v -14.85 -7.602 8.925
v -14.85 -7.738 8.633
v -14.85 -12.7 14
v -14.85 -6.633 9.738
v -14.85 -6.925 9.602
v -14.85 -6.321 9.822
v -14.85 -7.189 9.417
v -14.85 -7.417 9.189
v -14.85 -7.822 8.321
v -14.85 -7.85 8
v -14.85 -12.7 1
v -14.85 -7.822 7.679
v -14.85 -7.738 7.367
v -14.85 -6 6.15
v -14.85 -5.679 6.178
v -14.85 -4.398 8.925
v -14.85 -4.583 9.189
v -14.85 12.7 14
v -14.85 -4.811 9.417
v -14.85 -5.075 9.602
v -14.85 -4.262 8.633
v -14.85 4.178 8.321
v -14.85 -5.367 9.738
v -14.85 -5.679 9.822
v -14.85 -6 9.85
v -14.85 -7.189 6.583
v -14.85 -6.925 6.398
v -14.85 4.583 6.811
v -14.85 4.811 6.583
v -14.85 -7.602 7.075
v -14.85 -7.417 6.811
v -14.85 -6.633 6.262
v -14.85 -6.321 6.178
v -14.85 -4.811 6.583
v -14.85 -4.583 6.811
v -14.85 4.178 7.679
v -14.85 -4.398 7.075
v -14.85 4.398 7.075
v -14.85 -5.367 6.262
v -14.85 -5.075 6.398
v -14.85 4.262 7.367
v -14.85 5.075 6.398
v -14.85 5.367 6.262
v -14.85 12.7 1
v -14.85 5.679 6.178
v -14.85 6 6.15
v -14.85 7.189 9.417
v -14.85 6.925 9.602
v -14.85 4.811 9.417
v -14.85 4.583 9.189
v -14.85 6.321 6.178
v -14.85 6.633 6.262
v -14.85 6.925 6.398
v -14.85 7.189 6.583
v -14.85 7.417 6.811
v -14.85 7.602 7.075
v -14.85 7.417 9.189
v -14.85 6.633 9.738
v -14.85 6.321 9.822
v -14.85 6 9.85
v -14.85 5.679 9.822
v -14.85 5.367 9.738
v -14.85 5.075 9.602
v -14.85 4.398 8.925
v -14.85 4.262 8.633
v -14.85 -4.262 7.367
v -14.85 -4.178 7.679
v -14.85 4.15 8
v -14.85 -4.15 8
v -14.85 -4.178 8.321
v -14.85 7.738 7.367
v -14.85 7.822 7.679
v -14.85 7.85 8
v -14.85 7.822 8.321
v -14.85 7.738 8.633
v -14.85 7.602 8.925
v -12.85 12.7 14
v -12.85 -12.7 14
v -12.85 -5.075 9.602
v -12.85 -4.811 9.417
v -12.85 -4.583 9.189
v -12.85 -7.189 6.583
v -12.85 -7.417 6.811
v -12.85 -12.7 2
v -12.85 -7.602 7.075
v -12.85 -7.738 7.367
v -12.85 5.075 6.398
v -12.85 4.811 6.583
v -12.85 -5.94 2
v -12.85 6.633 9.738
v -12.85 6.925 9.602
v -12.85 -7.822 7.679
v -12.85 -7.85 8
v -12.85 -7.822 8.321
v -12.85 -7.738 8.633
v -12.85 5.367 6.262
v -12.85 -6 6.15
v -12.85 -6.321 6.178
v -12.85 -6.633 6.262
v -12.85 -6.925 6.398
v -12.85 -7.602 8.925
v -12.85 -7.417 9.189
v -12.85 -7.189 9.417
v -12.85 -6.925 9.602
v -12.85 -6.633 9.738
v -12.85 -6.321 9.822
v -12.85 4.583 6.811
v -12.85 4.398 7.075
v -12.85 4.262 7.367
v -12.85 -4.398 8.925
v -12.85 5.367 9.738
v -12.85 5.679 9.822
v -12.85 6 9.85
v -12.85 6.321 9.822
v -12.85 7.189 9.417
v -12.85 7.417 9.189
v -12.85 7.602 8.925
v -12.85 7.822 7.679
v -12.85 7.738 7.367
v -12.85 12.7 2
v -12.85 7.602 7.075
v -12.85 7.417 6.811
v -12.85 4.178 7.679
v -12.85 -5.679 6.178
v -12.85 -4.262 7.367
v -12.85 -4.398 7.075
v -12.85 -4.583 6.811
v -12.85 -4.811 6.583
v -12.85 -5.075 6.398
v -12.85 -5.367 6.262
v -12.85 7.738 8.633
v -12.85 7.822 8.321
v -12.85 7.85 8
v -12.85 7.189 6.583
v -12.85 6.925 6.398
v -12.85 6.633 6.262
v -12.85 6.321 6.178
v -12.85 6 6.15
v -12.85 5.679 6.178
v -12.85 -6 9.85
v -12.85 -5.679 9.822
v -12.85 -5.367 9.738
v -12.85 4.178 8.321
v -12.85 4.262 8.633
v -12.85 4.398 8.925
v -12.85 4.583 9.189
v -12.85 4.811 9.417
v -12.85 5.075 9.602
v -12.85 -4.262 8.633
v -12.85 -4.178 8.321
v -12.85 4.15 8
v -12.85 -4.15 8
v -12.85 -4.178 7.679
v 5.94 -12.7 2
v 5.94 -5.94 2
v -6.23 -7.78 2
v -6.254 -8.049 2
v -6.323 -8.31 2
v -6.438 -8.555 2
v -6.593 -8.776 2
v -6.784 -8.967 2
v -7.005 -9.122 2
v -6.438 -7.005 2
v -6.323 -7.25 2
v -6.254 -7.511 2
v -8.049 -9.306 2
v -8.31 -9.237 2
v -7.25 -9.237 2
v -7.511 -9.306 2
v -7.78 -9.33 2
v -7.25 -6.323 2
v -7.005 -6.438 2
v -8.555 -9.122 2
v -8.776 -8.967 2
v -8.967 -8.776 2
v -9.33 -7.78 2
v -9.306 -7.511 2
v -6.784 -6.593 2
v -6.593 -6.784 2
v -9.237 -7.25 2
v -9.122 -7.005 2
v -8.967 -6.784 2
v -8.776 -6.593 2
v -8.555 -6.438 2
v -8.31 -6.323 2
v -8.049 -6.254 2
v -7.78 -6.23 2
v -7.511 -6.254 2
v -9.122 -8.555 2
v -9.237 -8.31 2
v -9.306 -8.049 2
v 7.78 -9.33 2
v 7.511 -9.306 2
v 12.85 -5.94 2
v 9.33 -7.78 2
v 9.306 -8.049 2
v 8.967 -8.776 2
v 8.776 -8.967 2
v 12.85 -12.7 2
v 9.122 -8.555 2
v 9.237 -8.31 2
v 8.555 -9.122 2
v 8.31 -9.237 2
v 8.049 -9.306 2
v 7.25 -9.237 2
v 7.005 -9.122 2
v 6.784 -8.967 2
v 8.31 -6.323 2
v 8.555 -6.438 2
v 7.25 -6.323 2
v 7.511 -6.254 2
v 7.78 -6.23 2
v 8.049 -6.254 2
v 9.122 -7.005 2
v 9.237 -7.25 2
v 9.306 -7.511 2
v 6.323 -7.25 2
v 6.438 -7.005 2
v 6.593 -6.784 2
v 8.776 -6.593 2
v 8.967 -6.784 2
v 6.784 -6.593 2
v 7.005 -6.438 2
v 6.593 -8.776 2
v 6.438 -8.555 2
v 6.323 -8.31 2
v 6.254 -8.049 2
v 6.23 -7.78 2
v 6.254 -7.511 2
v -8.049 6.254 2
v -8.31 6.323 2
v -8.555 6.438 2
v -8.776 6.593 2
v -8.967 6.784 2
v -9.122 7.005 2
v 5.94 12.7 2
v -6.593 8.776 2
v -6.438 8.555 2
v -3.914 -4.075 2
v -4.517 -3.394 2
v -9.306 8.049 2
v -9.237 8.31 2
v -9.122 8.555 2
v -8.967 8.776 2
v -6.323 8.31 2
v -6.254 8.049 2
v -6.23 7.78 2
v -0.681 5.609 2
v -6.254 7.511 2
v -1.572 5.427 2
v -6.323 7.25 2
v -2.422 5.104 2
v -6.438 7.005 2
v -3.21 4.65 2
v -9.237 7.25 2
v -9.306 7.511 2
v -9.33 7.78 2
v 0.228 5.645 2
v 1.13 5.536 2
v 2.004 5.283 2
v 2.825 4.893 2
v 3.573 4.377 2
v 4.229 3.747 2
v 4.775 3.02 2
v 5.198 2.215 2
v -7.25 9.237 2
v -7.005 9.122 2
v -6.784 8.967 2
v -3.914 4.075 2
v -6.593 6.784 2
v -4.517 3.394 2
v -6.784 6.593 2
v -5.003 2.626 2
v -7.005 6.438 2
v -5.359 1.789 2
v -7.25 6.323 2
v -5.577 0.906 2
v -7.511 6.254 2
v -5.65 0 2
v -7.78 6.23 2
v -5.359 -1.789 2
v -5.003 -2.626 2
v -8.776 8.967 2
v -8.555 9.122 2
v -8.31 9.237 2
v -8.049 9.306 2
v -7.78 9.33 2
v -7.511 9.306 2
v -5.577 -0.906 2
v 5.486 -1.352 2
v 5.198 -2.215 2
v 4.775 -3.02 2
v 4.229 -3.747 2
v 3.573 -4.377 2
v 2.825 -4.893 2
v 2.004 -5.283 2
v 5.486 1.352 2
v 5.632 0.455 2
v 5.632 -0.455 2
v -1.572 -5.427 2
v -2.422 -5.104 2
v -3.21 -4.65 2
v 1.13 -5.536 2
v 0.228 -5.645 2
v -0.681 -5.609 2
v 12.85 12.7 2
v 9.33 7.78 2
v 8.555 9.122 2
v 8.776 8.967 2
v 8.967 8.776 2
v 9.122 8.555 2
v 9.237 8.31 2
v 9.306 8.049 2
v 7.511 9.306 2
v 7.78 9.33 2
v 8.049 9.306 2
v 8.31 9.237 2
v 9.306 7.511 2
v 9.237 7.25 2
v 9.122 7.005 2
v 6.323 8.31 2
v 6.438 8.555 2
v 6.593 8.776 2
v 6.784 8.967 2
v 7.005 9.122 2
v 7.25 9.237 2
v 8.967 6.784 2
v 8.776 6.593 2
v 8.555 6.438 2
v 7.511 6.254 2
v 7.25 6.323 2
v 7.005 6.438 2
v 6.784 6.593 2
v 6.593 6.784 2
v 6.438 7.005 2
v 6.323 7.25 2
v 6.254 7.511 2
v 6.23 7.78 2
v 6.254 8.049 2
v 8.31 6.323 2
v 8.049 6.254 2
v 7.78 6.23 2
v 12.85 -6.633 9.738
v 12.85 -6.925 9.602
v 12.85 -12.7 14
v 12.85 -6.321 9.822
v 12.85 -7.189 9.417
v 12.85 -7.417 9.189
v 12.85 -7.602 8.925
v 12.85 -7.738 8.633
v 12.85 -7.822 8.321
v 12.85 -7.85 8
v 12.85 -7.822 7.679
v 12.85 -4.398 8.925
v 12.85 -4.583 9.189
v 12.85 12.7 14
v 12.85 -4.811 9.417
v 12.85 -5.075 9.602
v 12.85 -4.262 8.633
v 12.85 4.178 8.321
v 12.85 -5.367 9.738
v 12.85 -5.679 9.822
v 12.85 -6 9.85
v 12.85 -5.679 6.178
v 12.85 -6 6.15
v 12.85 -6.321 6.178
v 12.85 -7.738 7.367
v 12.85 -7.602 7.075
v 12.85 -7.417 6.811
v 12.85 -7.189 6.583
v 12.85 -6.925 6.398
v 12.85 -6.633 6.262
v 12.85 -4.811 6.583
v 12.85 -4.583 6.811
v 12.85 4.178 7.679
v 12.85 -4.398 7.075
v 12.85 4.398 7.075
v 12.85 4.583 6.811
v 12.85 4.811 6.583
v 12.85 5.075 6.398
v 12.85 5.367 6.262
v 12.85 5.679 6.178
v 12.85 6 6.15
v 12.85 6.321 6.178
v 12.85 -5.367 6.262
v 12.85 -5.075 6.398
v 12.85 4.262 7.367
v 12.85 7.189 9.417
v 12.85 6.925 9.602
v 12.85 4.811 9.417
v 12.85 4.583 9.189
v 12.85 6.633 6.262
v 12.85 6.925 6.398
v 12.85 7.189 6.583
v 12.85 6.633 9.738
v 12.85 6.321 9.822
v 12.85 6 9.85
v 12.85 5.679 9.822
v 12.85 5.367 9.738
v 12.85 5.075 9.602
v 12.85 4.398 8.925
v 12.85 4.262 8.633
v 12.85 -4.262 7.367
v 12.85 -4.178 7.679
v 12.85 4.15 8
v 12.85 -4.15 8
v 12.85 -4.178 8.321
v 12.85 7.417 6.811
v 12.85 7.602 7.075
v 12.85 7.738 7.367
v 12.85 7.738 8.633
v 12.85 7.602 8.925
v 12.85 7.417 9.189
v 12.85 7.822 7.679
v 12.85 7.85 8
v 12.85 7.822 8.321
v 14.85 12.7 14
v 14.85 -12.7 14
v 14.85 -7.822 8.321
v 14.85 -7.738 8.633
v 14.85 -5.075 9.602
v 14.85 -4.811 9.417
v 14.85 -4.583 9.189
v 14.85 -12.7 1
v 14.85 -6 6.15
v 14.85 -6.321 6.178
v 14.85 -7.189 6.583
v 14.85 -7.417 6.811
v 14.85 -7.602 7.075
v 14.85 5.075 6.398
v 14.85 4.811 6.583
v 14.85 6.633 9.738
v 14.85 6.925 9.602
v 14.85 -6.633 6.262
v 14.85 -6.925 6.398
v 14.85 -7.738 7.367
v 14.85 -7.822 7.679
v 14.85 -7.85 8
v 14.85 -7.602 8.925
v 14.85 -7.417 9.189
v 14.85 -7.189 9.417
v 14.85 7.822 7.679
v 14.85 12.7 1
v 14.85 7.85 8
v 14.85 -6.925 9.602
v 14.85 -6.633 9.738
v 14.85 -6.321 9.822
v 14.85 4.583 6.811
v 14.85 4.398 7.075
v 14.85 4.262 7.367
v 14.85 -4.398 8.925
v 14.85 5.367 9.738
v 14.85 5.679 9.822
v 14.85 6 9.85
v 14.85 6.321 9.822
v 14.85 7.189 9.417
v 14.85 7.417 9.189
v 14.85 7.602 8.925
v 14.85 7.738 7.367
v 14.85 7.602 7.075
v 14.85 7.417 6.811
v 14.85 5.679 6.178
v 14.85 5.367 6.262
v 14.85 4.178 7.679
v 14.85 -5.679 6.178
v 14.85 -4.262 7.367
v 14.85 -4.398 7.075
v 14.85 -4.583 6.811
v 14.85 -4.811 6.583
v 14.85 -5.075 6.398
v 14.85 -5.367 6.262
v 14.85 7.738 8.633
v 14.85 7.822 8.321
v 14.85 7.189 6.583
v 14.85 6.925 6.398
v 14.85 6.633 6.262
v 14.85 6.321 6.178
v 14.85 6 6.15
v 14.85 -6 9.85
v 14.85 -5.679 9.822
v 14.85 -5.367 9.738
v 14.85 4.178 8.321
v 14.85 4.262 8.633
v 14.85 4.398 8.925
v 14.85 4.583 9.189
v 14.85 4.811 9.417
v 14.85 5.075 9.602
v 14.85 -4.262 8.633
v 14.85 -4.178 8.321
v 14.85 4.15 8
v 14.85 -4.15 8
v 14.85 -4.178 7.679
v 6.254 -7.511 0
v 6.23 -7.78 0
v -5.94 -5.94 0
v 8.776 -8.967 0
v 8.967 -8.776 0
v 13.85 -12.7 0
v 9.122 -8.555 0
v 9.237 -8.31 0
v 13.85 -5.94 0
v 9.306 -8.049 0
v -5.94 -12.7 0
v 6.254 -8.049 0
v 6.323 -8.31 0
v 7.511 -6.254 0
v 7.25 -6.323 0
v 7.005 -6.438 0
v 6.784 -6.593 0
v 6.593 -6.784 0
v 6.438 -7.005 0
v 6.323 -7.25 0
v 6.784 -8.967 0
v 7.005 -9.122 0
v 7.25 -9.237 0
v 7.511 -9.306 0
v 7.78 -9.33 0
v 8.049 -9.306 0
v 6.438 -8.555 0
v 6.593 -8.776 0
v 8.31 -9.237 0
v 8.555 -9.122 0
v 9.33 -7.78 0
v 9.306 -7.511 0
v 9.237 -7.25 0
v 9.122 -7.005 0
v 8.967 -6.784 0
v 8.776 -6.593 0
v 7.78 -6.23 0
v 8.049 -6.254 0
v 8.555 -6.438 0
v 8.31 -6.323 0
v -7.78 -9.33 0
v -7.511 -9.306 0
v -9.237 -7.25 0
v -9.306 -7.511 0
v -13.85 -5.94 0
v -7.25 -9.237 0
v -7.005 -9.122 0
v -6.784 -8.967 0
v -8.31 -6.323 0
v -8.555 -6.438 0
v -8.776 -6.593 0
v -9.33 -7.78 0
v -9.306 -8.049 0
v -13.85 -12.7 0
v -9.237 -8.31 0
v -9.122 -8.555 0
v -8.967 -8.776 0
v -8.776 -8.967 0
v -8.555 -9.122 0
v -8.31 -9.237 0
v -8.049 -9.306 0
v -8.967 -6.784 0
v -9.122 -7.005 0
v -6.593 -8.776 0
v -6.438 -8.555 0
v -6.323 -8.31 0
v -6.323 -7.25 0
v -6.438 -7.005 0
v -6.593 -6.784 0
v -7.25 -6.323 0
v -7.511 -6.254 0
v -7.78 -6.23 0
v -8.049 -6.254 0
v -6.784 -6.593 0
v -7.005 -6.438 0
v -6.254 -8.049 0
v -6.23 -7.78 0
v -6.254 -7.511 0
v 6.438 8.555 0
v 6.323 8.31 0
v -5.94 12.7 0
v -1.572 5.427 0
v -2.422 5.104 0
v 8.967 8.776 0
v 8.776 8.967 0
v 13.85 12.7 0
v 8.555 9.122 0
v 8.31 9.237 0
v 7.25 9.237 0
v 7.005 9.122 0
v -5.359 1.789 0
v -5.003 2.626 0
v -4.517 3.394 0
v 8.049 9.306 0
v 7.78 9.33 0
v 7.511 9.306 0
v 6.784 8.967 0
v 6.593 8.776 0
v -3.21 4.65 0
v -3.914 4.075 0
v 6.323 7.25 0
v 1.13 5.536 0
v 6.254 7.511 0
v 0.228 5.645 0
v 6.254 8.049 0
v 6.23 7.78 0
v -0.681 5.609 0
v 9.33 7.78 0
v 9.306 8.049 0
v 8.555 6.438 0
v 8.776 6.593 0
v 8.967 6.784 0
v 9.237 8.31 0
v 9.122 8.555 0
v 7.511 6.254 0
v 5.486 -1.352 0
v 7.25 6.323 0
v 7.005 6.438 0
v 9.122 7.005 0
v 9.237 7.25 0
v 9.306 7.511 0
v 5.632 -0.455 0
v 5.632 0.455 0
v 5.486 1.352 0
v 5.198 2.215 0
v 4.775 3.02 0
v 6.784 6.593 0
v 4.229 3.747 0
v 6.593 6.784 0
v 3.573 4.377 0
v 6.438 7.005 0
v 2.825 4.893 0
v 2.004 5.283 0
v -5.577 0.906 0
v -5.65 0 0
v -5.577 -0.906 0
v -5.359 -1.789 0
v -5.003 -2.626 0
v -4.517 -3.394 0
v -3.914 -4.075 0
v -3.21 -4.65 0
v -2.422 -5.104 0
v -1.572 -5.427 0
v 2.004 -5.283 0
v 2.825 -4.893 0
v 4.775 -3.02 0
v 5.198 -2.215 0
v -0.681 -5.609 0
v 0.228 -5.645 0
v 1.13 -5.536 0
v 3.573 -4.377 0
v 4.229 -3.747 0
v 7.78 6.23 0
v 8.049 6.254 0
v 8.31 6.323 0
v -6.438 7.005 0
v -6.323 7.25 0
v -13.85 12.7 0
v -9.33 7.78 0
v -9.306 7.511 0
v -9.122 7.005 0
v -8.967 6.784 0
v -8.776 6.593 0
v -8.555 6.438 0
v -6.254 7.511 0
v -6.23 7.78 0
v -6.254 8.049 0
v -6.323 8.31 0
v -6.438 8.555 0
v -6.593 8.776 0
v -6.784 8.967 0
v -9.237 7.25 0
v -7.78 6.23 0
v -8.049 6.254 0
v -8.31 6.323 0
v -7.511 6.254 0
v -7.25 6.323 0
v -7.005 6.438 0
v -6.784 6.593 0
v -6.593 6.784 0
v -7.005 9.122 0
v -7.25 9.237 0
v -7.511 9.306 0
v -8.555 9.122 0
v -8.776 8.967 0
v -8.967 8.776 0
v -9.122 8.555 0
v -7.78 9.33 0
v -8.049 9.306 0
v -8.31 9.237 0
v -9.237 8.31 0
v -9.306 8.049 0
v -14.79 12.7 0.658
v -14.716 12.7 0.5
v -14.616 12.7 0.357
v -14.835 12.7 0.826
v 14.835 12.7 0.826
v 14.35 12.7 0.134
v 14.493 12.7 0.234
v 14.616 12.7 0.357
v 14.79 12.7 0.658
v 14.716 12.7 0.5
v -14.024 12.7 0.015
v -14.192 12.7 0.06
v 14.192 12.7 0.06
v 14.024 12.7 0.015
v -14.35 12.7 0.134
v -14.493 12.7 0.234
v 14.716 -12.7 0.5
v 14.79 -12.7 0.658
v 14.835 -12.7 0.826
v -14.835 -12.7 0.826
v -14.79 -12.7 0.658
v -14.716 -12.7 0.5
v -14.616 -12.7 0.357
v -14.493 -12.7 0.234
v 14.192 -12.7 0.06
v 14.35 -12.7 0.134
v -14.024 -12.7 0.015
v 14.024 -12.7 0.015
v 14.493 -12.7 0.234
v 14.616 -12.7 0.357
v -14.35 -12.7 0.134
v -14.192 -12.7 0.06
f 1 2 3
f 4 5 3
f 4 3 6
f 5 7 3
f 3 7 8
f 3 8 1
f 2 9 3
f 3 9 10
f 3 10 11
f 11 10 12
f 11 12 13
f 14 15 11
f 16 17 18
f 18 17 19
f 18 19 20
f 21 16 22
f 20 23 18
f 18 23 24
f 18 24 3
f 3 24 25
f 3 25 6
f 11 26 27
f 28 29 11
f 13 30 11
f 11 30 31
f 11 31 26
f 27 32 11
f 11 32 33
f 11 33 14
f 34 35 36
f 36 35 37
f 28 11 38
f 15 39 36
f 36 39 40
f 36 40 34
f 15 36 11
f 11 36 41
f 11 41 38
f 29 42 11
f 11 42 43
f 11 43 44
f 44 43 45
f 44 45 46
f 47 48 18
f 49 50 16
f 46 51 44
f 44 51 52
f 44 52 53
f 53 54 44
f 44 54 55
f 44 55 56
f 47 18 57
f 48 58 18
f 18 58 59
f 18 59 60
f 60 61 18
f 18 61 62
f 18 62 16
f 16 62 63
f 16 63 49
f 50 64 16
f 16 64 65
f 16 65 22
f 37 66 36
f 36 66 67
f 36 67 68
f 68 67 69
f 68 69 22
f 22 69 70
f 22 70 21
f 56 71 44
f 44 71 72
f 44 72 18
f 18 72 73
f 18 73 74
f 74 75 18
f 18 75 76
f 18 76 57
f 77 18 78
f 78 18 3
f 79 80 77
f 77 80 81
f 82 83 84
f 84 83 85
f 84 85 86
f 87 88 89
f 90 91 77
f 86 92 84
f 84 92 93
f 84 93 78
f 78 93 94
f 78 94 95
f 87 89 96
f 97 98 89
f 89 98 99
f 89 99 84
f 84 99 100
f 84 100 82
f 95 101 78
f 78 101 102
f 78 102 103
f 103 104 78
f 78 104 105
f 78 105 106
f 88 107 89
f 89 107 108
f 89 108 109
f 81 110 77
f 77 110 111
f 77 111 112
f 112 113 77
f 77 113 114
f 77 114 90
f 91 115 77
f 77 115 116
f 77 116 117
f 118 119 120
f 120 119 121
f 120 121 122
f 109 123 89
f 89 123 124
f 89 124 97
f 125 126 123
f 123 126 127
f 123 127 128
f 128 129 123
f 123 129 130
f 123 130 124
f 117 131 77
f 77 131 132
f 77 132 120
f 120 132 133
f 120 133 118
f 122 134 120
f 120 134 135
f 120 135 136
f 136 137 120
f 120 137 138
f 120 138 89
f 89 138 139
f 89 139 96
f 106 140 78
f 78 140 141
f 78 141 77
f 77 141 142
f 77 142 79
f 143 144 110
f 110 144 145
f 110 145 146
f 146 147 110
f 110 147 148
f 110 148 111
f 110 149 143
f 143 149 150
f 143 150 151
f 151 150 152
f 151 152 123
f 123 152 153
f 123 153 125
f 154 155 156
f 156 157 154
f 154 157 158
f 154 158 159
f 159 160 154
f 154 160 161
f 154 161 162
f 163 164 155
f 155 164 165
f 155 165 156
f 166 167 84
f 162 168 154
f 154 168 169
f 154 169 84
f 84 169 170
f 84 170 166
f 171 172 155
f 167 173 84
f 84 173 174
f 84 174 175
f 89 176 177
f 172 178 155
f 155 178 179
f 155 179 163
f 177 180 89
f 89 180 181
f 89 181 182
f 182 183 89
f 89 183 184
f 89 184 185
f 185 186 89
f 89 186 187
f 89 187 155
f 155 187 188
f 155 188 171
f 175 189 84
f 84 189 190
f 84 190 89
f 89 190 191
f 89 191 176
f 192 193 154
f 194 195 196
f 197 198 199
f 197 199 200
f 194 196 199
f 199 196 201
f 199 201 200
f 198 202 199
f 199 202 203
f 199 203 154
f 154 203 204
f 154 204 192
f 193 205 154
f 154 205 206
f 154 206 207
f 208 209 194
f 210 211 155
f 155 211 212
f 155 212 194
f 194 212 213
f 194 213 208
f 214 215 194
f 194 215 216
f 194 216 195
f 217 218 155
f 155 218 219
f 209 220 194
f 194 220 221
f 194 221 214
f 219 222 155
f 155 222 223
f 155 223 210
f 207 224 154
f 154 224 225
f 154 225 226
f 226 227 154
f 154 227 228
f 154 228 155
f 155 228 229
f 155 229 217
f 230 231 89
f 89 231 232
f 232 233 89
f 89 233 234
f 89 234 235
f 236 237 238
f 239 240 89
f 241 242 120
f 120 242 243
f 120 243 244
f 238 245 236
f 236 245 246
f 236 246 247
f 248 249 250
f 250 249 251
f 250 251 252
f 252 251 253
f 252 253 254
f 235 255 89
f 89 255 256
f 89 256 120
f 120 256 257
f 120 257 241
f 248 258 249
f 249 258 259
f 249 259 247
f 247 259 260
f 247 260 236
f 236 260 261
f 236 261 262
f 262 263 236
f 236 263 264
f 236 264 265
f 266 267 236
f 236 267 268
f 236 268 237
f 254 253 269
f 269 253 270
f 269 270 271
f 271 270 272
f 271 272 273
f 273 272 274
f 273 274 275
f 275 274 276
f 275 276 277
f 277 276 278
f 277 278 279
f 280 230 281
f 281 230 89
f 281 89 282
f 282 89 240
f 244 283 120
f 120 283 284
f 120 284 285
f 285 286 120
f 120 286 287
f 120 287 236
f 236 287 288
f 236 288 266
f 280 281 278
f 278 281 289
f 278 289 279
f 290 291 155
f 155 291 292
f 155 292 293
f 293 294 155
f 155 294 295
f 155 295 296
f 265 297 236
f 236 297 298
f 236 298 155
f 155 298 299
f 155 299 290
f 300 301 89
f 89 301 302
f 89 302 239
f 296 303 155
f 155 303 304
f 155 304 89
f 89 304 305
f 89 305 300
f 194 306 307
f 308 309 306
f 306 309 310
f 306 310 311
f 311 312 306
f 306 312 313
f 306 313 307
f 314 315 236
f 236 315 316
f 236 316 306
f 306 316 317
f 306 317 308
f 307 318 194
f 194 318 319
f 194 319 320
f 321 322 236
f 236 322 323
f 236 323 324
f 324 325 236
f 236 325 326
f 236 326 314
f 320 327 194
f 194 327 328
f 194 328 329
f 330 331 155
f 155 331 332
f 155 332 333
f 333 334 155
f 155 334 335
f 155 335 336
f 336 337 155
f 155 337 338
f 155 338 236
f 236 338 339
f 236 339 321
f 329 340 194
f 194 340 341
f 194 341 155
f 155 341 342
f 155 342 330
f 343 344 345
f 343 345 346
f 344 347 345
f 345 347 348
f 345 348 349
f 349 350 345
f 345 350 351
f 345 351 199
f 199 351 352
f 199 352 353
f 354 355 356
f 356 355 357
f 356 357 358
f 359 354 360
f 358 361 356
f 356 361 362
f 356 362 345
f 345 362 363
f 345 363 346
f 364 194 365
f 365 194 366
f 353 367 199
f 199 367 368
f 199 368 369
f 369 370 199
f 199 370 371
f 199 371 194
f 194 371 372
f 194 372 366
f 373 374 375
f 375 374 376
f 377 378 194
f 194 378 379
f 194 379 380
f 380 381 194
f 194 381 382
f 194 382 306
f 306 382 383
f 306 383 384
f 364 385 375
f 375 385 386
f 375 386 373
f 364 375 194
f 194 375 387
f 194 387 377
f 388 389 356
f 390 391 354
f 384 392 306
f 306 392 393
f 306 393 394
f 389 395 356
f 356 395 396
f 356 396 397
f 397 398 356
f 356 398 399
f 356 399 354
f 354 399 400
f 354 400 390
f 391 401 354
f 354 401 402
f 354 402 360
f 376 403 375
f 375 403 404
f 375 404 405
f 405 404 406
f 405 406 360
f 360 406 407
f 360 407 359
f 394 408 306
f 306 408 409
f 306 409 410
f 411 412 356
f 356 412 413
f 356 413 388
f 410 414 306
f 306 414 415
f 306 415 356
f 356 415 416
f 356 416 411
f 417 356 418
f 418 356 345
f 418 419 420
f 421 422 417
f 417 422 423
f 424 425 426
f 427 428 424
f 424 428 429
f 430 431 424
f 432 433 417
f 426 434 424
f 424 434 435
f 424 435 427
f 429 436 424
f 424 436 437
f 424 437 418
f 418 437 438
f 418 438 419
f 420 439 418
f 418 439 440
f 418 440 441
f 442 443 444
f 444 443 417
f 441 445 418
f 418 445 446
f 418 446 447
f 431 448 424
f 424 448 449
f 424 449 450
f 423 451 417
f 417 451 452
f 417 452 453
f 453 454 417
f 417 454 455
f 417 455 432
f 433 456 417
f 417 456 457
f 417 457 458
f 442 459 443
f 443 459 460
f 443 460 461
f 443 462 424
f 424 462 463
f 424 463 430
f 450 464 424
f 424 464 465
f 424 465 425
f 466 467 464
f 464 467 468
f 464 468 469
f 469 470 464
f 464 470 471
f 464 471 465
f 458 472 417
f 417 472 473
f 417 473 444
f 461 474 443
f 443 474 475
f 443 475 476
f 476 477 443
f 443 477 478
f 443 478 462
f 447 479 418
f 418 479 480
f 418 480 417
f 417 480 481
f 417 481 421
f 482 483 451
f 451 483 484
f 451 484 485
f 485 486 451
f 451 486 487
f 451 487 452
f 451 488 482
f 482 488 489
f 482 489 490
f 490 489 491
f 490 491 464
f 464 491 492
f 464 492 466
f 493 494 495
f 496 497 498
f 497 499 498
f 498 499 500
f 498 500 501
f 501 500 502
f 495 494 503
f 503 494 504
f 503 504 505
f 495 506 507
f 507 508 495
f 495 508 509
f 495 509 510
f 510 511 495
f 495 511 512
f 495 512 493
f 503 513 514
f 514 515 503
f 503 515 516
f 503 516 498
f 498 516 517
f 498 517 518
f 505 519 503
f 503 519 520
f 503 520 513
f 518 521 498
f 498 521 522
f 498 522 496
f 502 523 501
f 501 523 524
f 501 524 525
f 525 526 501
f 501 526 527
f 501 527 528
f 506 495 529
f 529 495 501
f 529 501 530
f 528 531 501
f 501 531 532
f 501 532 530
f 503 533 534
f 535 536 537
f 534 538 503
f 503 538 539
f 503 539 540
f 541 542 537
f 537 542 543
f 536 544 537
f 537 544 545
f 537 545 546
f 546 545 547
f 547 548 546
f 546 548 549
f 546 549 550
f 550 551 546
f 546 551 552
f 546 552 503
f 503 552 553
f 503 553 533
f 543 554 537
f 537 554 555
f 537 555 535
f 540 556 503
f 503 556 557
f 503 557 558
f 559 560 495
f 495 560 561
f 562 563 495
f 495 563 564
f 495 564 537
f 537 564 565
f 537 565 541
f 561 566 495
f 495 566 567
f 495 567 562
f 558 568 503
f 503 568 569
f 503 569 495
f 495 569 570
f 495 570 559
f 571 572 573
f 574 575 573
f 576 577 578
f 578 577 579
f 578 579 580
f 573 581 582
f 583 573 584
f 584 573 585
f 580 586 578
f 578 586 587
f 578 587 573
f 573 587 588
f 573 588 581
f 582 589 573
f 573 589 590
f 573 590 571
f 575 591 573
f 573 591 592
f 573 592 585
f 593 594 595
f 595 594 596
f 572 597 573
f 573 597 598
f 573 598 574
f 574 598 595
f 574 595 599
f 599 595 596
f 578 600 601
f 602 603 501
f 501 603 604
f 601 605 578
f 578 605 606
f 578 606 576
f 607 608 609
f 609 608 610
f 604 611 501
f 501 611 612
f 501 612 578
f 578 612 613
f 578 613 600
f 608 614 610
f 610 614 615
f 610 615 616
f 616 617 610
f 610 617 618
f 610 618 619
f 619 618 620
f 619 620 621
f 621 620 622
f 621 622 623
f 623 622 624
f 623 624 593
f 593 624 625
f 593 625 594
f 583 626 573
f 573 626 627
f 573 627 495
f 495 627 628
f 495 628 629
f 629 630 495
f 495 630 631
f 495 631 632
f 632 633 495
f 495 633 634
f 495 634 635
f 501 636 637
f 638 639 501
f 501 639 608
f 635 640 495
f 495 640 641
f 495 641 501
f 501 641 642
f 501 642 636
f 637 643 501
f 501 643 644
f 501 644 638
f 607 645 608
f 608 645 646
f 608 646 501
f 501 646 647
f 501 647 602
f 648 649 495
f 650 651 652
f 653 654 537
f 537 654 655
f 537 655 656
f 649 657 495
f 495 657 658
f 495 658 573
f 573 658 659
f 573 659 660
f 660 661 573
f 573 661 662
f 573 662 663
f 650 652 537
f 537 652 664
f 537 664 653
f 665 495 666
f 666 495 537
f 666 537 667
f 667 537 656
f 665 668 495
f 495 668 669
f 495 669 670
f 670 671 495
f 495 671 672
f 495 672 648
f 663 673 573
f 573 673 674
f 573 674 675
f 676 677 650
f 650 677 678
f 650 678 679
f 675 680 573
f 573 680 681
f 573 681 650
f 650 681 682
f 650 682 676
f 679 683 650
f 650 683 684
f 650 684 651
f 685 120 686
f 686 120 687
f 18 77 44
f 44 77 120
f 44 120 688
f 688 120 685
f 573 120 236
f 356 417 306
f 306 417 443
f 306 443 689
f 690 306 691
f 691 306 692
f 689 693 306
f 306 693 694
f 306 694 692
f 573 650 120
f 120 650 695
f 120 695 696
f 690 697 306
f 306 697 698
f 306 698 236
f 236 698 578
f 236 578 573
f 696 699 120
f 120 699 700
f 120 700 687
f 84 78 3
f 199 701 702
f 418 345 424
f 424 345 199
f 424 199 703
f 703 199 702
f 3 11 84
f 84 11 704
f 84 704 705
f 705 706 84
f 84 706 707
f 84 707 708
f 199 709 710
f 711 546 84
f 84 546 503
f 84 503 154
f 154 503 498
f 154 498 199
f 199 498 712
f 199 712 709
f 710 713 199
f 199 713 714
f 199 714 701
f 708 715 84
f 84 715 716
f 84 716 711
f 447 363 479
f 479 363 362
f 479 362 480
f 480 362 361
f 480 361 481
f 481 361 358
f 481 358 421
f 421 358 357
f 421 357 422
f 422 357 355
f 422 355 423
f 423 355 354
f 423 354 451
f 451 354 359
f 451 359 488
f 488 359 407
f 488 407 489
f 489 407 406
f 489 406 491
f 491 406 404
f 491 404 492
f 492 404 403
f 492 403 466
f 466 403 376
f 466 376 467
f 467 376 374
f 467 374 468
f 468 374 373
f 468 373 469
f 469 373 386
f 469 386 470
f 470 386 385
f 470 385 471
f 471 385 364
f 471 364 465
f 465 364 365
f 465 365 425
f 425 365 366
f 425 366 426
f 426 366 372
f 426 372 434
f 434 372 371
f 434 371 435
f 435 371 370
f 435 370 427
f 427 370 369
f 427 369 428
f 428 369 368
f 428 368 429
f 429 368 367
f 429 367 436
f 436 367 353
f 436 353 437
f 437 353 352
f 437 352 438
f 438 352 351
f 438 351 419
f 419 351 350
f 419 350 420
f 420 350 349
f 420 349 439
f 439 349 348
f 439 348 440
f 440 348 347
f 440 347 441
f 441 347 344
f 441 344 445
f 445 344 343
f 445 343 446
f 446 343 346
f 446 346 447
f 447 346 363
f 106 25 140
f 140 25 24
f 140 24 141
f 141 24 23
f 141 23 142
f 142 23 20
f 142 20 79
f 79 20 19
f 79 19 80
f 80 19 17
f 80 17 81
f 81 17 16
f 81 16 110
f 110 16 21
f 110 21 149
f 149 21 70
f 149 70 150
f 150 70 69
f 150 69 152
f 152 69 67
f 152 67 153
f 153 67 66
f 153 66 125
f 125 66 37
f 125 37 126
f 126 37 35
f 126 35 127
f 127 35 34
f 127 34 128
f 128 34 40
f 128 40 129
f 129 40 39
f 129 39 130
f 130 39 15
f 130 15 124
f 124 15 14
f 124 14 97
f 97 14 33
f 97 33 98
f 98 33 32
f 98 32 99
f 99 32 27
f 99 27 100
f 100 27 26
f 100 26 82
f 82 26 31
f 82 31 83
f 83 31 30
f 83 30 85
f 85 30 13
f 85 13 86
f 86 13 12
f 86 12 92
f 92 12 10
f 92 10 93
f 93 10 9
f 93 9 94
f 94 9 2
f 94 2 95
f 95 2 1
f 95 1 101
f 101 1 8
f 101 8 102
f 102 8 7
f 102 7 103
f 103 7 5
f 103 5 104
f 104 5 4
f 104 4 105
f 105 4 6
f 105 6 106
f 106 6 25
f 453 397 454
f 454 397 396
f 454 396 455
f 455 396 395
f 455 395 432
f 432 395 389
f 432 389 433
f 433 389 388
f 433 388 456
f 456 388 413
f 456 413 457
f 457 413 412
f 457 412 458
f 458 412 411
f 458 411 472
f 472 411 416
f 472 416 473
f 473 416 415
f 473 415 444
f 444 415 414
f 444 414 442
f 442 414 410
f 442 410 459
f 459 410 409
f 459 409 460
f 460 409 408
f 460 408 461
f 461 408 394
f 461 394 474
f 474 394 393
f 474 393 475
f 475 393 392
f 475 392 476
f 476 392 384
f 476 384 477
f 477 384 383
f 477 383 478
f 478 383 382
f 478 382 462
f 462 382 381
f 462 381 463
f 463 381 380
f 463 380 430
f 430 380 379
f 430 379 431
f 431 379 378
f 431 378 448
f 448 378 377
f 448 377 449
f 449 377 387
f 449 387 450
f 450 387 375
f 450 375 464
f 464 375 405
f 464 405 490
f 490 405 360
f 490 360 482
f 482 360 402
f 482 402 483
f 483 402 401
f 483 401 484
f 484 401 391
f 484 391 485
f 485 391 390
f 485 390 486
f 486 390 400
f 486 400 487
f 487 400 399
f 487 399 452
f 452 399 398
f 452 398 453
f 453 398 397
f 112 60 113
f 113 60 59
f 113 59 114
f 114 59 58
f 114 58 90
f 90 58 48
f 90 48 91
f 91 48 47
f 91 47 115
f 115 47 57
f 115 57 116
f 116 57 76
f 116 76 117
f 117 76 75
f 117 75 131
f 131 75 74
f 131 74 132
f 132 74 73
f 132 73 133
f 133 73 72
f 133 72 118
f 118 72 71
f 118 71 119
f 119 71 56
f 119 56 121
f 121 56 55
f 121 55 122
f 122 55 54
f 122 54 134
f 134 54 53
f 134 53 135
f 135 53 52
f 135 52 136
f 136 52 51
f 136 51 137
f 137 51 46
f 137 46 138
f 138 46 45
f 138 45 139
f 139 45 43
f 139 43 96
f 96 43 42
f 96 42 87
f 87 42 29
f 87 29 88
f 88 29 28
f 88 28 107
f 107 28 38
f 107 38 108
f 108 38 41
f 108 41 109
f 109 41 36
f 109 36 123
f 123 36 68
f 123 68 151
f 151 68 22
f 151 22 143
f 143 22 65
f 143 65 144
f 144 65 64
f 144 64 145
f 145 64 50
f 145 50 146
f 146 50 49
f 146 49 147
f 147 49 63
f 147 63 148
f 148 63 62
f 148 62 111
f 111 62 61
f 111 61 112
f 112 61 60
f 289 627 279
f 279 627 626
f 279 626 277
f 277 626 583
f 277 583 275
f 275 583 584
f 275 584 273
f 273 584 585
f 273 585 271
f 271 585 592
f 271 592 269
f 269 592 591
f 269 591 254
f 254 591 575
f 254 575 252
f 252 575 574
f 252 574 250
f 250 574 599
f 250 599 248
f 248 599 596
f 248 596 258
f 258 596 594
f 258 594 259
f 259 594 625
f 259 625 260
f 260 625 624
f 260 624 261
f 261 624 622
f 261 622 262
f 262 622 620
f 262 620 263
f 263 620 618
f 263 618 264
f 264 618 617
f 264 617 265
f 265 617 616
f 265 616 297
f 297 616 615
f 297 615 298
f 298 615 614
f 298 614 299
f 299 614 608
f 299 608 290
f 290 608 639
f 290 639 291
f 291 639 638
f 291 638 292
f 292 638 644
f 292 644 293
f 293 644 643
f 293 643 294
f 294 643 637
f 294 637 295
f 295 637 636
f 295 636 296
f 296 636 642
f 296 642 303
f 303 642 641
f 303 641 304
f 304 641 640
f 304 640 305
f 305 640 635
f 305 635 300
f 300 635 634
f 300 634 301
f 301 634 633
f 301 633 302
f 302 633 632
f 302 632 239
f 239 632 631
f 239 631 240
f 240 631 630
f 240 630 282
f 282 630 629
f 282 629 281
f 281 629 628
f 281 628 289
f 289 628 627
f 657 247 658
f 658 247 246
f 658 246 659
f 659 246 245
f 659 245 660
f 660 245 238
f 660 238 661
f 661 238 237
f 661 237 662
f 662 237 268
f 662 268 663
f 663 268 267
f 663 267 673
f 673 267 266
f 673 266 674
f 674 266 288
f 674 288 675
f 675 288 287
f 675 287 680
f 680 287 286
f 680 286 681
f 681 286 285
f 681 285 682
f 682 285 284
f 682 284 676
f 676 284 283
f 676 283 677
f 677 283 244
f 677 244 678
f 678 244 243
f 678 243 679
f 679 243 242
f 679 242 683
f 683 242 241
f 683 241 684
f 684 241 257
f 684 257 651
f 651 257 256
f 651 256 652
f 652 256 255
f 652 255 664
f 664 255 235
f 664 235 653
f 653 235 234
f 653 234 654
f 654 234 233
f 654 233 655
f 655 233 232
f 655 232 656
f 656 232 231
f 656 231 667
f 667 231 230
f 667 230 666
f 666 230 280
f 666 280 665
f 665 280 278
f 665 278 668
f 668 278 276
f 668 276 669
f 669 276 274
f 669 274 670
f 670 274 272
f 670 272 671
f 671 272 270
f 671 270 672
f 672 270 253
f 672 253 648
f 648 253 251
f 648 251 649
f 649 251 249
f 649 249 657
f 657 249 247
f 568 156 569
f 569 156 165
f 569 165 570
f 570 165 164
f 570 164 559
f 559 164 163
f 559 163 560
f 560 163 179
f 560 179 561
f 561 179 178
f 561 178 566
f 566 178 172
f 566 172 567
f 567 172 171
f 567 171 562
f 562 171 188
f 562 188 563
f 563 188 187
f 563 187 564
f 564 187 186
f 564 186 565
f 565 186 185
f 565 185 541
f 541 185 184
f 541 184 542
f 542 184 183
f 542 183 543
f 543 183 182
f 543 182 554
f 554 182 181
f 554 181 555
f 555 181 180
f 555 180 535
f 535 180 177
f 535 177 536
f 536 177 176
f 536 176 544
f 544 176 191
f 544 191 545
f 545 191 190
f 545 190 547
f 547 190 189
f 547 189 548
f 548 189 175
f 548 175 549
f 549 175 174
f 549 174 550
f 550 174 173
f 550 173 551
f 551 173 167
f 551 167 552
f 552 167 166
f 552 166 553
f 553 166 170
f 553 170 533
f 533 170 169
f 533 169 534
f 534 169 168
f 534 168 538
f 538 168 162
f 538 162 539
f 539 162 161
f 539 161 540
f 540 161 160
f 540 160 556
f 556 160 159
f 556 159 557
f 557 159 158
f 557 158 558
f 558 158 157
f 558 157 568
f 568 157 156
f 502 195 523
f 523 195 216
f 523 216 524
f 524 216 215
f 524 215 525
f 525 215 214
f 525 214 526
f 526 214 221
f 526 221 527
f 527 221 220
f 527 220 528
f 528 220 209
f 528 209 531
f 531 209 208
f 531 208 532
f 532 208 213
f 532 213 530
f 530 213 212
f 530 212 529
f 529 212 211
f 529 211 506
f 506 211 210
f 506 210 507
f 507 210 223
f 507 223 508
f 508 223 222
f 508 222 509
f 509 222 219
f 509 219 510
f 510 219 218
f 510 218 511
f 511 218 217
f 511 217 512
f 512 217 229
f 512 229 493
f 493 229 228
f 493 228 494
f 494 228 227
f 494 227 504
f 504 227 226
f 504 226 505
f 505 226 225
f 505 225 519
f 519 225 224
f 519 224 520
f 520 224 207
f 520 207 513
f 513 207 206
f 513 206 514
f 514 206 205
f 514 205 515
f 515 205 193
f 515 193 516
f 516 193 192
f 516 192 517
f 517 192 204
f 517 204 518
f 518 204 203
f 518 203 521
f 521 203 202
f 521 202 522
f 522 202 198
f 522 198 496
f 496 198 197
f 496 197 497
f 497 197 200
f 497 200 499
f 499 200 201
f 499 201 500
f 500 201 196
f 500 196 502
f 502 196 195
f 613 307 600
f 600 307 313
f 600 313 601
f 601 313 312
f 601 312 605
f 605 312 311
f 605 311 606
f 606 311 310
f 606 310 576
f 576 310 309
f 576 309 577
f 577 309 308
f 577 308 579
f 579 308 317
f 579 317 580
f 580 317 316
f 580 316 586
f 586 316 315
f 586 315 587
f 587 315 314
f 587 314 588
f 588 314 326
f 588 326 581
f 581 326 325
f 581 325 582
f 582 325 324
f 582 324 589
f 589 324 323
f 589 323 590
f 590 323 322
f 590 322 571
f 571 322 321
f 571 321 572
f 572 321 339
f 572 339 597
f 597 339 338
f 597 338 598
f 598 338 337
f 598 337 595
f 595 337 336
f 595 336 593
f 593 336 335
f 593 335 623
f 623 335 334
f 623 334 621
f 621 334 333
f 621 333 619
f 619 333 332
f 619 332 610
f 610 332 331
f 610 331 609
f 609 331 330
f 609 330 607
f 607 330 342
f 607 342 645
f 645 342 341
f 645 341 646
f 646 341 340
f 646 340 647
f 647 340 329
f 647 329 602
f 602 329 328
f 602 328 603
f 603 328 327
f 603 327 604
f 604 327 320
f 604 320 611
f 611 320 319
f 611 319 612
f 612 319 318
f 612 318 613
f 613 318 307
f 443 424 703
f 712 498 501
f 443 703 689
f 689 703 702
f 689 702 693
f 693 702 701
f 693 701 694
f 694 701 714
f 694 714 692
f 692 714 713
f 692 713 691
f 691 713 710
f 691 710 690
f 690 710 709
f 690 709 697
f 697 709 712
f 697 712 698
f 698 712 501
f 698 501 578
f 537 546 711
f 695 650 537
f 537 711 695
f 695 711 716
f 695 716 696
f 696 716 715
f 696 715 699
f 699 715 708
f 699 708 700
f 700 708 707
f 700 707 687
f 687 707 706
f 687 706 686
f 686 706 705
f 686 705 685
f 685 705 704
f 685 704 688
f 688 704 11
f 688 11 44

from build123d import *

# Parameters (mm, degrees)
BOSS_EXTRUDE1_DEPTH = 12.7
SKETCH2_R           = 1.85
CUT_EXTRUDE1_DEPTH  = 30.7
SKETCH3_R           = 5.65
CUT_EXTRUDE2_DEPTH  = 15
SKETCH4_R           = 1.55
CUT_EXTRUDE3_DEPTH  = 3
FILLET1_R           = 1


with BuildPart() as part:
    # Sketch1 → Boss-Extrude1 (new body, symmetric)
    with BuildSketch(Plane(origin=(0, 0, 0), x_dir=(1, 0, 0), z_dir=(0, 1, 0))):
        Polygon((-14.85, 0), (14.85, 0), (14.85, -14), (12.85, -14), (12.85, -2), (-12.85, -2), (-12.85, -14), (-14.85, -14), align=None)
    extrude(amount=BOSS_EXTRUDE1_DEPTH, both=True)

    # Sketch2 → Cut-Extrude1 (cut, through all)
    with BuildSketch(Plane.ZY.offset(14.85)):
        with Locations((8, -6)):
            Circle(SKETCH2_R)
        with Locations((8, 6)):
            Circle(SKETCH2_R)
    extrude(amount=-CUT_EXTRUDE1_DEPTH, mode=Mode.SUBTRACT)

    # Sketch3 → Cut-Extrude2 (cut, through all)
    with BuildSketch(Plane(origin=(0, 0, 0), x_dir=(-1, 0, 0), z_dir=(0, 0, -1))):
        Circle(SKETCH3_R)
    extrude(amount=-CUT_EXTRUDE2_DEPTH, mode=Mode.SUBTRACT)

    # Sketch4 → Cut-Extrude3 (cut, through all)
    with BuildSketch(Plane.XY.offset(2)):
        with Locations((-7.78, 7.78)):
            Circle(SKETCH4_R)
        with Locations((-7.78, -7.78)):
            Circle(SKETCH4_R)
        with Locations((7.78, -7.78)):
            Circle(SKETCH4_R)
        with Locations((7.78, 7.78)):
            Circle(SKETCH4_R)
    extrude(amount=-CUT_EXTRUDE3_DEPTH, mode=Mode.SUBTRACT)

    # Fillet1
    fillet1_edges = [part.edges().sort_by_distance(p)[0] for p in [
        (-14.85, 0, 0),
        (14.85, 0, 0),
    ]]
    fillet(fillet1_edges, radius=FILLET1_R)


solid = part.part
